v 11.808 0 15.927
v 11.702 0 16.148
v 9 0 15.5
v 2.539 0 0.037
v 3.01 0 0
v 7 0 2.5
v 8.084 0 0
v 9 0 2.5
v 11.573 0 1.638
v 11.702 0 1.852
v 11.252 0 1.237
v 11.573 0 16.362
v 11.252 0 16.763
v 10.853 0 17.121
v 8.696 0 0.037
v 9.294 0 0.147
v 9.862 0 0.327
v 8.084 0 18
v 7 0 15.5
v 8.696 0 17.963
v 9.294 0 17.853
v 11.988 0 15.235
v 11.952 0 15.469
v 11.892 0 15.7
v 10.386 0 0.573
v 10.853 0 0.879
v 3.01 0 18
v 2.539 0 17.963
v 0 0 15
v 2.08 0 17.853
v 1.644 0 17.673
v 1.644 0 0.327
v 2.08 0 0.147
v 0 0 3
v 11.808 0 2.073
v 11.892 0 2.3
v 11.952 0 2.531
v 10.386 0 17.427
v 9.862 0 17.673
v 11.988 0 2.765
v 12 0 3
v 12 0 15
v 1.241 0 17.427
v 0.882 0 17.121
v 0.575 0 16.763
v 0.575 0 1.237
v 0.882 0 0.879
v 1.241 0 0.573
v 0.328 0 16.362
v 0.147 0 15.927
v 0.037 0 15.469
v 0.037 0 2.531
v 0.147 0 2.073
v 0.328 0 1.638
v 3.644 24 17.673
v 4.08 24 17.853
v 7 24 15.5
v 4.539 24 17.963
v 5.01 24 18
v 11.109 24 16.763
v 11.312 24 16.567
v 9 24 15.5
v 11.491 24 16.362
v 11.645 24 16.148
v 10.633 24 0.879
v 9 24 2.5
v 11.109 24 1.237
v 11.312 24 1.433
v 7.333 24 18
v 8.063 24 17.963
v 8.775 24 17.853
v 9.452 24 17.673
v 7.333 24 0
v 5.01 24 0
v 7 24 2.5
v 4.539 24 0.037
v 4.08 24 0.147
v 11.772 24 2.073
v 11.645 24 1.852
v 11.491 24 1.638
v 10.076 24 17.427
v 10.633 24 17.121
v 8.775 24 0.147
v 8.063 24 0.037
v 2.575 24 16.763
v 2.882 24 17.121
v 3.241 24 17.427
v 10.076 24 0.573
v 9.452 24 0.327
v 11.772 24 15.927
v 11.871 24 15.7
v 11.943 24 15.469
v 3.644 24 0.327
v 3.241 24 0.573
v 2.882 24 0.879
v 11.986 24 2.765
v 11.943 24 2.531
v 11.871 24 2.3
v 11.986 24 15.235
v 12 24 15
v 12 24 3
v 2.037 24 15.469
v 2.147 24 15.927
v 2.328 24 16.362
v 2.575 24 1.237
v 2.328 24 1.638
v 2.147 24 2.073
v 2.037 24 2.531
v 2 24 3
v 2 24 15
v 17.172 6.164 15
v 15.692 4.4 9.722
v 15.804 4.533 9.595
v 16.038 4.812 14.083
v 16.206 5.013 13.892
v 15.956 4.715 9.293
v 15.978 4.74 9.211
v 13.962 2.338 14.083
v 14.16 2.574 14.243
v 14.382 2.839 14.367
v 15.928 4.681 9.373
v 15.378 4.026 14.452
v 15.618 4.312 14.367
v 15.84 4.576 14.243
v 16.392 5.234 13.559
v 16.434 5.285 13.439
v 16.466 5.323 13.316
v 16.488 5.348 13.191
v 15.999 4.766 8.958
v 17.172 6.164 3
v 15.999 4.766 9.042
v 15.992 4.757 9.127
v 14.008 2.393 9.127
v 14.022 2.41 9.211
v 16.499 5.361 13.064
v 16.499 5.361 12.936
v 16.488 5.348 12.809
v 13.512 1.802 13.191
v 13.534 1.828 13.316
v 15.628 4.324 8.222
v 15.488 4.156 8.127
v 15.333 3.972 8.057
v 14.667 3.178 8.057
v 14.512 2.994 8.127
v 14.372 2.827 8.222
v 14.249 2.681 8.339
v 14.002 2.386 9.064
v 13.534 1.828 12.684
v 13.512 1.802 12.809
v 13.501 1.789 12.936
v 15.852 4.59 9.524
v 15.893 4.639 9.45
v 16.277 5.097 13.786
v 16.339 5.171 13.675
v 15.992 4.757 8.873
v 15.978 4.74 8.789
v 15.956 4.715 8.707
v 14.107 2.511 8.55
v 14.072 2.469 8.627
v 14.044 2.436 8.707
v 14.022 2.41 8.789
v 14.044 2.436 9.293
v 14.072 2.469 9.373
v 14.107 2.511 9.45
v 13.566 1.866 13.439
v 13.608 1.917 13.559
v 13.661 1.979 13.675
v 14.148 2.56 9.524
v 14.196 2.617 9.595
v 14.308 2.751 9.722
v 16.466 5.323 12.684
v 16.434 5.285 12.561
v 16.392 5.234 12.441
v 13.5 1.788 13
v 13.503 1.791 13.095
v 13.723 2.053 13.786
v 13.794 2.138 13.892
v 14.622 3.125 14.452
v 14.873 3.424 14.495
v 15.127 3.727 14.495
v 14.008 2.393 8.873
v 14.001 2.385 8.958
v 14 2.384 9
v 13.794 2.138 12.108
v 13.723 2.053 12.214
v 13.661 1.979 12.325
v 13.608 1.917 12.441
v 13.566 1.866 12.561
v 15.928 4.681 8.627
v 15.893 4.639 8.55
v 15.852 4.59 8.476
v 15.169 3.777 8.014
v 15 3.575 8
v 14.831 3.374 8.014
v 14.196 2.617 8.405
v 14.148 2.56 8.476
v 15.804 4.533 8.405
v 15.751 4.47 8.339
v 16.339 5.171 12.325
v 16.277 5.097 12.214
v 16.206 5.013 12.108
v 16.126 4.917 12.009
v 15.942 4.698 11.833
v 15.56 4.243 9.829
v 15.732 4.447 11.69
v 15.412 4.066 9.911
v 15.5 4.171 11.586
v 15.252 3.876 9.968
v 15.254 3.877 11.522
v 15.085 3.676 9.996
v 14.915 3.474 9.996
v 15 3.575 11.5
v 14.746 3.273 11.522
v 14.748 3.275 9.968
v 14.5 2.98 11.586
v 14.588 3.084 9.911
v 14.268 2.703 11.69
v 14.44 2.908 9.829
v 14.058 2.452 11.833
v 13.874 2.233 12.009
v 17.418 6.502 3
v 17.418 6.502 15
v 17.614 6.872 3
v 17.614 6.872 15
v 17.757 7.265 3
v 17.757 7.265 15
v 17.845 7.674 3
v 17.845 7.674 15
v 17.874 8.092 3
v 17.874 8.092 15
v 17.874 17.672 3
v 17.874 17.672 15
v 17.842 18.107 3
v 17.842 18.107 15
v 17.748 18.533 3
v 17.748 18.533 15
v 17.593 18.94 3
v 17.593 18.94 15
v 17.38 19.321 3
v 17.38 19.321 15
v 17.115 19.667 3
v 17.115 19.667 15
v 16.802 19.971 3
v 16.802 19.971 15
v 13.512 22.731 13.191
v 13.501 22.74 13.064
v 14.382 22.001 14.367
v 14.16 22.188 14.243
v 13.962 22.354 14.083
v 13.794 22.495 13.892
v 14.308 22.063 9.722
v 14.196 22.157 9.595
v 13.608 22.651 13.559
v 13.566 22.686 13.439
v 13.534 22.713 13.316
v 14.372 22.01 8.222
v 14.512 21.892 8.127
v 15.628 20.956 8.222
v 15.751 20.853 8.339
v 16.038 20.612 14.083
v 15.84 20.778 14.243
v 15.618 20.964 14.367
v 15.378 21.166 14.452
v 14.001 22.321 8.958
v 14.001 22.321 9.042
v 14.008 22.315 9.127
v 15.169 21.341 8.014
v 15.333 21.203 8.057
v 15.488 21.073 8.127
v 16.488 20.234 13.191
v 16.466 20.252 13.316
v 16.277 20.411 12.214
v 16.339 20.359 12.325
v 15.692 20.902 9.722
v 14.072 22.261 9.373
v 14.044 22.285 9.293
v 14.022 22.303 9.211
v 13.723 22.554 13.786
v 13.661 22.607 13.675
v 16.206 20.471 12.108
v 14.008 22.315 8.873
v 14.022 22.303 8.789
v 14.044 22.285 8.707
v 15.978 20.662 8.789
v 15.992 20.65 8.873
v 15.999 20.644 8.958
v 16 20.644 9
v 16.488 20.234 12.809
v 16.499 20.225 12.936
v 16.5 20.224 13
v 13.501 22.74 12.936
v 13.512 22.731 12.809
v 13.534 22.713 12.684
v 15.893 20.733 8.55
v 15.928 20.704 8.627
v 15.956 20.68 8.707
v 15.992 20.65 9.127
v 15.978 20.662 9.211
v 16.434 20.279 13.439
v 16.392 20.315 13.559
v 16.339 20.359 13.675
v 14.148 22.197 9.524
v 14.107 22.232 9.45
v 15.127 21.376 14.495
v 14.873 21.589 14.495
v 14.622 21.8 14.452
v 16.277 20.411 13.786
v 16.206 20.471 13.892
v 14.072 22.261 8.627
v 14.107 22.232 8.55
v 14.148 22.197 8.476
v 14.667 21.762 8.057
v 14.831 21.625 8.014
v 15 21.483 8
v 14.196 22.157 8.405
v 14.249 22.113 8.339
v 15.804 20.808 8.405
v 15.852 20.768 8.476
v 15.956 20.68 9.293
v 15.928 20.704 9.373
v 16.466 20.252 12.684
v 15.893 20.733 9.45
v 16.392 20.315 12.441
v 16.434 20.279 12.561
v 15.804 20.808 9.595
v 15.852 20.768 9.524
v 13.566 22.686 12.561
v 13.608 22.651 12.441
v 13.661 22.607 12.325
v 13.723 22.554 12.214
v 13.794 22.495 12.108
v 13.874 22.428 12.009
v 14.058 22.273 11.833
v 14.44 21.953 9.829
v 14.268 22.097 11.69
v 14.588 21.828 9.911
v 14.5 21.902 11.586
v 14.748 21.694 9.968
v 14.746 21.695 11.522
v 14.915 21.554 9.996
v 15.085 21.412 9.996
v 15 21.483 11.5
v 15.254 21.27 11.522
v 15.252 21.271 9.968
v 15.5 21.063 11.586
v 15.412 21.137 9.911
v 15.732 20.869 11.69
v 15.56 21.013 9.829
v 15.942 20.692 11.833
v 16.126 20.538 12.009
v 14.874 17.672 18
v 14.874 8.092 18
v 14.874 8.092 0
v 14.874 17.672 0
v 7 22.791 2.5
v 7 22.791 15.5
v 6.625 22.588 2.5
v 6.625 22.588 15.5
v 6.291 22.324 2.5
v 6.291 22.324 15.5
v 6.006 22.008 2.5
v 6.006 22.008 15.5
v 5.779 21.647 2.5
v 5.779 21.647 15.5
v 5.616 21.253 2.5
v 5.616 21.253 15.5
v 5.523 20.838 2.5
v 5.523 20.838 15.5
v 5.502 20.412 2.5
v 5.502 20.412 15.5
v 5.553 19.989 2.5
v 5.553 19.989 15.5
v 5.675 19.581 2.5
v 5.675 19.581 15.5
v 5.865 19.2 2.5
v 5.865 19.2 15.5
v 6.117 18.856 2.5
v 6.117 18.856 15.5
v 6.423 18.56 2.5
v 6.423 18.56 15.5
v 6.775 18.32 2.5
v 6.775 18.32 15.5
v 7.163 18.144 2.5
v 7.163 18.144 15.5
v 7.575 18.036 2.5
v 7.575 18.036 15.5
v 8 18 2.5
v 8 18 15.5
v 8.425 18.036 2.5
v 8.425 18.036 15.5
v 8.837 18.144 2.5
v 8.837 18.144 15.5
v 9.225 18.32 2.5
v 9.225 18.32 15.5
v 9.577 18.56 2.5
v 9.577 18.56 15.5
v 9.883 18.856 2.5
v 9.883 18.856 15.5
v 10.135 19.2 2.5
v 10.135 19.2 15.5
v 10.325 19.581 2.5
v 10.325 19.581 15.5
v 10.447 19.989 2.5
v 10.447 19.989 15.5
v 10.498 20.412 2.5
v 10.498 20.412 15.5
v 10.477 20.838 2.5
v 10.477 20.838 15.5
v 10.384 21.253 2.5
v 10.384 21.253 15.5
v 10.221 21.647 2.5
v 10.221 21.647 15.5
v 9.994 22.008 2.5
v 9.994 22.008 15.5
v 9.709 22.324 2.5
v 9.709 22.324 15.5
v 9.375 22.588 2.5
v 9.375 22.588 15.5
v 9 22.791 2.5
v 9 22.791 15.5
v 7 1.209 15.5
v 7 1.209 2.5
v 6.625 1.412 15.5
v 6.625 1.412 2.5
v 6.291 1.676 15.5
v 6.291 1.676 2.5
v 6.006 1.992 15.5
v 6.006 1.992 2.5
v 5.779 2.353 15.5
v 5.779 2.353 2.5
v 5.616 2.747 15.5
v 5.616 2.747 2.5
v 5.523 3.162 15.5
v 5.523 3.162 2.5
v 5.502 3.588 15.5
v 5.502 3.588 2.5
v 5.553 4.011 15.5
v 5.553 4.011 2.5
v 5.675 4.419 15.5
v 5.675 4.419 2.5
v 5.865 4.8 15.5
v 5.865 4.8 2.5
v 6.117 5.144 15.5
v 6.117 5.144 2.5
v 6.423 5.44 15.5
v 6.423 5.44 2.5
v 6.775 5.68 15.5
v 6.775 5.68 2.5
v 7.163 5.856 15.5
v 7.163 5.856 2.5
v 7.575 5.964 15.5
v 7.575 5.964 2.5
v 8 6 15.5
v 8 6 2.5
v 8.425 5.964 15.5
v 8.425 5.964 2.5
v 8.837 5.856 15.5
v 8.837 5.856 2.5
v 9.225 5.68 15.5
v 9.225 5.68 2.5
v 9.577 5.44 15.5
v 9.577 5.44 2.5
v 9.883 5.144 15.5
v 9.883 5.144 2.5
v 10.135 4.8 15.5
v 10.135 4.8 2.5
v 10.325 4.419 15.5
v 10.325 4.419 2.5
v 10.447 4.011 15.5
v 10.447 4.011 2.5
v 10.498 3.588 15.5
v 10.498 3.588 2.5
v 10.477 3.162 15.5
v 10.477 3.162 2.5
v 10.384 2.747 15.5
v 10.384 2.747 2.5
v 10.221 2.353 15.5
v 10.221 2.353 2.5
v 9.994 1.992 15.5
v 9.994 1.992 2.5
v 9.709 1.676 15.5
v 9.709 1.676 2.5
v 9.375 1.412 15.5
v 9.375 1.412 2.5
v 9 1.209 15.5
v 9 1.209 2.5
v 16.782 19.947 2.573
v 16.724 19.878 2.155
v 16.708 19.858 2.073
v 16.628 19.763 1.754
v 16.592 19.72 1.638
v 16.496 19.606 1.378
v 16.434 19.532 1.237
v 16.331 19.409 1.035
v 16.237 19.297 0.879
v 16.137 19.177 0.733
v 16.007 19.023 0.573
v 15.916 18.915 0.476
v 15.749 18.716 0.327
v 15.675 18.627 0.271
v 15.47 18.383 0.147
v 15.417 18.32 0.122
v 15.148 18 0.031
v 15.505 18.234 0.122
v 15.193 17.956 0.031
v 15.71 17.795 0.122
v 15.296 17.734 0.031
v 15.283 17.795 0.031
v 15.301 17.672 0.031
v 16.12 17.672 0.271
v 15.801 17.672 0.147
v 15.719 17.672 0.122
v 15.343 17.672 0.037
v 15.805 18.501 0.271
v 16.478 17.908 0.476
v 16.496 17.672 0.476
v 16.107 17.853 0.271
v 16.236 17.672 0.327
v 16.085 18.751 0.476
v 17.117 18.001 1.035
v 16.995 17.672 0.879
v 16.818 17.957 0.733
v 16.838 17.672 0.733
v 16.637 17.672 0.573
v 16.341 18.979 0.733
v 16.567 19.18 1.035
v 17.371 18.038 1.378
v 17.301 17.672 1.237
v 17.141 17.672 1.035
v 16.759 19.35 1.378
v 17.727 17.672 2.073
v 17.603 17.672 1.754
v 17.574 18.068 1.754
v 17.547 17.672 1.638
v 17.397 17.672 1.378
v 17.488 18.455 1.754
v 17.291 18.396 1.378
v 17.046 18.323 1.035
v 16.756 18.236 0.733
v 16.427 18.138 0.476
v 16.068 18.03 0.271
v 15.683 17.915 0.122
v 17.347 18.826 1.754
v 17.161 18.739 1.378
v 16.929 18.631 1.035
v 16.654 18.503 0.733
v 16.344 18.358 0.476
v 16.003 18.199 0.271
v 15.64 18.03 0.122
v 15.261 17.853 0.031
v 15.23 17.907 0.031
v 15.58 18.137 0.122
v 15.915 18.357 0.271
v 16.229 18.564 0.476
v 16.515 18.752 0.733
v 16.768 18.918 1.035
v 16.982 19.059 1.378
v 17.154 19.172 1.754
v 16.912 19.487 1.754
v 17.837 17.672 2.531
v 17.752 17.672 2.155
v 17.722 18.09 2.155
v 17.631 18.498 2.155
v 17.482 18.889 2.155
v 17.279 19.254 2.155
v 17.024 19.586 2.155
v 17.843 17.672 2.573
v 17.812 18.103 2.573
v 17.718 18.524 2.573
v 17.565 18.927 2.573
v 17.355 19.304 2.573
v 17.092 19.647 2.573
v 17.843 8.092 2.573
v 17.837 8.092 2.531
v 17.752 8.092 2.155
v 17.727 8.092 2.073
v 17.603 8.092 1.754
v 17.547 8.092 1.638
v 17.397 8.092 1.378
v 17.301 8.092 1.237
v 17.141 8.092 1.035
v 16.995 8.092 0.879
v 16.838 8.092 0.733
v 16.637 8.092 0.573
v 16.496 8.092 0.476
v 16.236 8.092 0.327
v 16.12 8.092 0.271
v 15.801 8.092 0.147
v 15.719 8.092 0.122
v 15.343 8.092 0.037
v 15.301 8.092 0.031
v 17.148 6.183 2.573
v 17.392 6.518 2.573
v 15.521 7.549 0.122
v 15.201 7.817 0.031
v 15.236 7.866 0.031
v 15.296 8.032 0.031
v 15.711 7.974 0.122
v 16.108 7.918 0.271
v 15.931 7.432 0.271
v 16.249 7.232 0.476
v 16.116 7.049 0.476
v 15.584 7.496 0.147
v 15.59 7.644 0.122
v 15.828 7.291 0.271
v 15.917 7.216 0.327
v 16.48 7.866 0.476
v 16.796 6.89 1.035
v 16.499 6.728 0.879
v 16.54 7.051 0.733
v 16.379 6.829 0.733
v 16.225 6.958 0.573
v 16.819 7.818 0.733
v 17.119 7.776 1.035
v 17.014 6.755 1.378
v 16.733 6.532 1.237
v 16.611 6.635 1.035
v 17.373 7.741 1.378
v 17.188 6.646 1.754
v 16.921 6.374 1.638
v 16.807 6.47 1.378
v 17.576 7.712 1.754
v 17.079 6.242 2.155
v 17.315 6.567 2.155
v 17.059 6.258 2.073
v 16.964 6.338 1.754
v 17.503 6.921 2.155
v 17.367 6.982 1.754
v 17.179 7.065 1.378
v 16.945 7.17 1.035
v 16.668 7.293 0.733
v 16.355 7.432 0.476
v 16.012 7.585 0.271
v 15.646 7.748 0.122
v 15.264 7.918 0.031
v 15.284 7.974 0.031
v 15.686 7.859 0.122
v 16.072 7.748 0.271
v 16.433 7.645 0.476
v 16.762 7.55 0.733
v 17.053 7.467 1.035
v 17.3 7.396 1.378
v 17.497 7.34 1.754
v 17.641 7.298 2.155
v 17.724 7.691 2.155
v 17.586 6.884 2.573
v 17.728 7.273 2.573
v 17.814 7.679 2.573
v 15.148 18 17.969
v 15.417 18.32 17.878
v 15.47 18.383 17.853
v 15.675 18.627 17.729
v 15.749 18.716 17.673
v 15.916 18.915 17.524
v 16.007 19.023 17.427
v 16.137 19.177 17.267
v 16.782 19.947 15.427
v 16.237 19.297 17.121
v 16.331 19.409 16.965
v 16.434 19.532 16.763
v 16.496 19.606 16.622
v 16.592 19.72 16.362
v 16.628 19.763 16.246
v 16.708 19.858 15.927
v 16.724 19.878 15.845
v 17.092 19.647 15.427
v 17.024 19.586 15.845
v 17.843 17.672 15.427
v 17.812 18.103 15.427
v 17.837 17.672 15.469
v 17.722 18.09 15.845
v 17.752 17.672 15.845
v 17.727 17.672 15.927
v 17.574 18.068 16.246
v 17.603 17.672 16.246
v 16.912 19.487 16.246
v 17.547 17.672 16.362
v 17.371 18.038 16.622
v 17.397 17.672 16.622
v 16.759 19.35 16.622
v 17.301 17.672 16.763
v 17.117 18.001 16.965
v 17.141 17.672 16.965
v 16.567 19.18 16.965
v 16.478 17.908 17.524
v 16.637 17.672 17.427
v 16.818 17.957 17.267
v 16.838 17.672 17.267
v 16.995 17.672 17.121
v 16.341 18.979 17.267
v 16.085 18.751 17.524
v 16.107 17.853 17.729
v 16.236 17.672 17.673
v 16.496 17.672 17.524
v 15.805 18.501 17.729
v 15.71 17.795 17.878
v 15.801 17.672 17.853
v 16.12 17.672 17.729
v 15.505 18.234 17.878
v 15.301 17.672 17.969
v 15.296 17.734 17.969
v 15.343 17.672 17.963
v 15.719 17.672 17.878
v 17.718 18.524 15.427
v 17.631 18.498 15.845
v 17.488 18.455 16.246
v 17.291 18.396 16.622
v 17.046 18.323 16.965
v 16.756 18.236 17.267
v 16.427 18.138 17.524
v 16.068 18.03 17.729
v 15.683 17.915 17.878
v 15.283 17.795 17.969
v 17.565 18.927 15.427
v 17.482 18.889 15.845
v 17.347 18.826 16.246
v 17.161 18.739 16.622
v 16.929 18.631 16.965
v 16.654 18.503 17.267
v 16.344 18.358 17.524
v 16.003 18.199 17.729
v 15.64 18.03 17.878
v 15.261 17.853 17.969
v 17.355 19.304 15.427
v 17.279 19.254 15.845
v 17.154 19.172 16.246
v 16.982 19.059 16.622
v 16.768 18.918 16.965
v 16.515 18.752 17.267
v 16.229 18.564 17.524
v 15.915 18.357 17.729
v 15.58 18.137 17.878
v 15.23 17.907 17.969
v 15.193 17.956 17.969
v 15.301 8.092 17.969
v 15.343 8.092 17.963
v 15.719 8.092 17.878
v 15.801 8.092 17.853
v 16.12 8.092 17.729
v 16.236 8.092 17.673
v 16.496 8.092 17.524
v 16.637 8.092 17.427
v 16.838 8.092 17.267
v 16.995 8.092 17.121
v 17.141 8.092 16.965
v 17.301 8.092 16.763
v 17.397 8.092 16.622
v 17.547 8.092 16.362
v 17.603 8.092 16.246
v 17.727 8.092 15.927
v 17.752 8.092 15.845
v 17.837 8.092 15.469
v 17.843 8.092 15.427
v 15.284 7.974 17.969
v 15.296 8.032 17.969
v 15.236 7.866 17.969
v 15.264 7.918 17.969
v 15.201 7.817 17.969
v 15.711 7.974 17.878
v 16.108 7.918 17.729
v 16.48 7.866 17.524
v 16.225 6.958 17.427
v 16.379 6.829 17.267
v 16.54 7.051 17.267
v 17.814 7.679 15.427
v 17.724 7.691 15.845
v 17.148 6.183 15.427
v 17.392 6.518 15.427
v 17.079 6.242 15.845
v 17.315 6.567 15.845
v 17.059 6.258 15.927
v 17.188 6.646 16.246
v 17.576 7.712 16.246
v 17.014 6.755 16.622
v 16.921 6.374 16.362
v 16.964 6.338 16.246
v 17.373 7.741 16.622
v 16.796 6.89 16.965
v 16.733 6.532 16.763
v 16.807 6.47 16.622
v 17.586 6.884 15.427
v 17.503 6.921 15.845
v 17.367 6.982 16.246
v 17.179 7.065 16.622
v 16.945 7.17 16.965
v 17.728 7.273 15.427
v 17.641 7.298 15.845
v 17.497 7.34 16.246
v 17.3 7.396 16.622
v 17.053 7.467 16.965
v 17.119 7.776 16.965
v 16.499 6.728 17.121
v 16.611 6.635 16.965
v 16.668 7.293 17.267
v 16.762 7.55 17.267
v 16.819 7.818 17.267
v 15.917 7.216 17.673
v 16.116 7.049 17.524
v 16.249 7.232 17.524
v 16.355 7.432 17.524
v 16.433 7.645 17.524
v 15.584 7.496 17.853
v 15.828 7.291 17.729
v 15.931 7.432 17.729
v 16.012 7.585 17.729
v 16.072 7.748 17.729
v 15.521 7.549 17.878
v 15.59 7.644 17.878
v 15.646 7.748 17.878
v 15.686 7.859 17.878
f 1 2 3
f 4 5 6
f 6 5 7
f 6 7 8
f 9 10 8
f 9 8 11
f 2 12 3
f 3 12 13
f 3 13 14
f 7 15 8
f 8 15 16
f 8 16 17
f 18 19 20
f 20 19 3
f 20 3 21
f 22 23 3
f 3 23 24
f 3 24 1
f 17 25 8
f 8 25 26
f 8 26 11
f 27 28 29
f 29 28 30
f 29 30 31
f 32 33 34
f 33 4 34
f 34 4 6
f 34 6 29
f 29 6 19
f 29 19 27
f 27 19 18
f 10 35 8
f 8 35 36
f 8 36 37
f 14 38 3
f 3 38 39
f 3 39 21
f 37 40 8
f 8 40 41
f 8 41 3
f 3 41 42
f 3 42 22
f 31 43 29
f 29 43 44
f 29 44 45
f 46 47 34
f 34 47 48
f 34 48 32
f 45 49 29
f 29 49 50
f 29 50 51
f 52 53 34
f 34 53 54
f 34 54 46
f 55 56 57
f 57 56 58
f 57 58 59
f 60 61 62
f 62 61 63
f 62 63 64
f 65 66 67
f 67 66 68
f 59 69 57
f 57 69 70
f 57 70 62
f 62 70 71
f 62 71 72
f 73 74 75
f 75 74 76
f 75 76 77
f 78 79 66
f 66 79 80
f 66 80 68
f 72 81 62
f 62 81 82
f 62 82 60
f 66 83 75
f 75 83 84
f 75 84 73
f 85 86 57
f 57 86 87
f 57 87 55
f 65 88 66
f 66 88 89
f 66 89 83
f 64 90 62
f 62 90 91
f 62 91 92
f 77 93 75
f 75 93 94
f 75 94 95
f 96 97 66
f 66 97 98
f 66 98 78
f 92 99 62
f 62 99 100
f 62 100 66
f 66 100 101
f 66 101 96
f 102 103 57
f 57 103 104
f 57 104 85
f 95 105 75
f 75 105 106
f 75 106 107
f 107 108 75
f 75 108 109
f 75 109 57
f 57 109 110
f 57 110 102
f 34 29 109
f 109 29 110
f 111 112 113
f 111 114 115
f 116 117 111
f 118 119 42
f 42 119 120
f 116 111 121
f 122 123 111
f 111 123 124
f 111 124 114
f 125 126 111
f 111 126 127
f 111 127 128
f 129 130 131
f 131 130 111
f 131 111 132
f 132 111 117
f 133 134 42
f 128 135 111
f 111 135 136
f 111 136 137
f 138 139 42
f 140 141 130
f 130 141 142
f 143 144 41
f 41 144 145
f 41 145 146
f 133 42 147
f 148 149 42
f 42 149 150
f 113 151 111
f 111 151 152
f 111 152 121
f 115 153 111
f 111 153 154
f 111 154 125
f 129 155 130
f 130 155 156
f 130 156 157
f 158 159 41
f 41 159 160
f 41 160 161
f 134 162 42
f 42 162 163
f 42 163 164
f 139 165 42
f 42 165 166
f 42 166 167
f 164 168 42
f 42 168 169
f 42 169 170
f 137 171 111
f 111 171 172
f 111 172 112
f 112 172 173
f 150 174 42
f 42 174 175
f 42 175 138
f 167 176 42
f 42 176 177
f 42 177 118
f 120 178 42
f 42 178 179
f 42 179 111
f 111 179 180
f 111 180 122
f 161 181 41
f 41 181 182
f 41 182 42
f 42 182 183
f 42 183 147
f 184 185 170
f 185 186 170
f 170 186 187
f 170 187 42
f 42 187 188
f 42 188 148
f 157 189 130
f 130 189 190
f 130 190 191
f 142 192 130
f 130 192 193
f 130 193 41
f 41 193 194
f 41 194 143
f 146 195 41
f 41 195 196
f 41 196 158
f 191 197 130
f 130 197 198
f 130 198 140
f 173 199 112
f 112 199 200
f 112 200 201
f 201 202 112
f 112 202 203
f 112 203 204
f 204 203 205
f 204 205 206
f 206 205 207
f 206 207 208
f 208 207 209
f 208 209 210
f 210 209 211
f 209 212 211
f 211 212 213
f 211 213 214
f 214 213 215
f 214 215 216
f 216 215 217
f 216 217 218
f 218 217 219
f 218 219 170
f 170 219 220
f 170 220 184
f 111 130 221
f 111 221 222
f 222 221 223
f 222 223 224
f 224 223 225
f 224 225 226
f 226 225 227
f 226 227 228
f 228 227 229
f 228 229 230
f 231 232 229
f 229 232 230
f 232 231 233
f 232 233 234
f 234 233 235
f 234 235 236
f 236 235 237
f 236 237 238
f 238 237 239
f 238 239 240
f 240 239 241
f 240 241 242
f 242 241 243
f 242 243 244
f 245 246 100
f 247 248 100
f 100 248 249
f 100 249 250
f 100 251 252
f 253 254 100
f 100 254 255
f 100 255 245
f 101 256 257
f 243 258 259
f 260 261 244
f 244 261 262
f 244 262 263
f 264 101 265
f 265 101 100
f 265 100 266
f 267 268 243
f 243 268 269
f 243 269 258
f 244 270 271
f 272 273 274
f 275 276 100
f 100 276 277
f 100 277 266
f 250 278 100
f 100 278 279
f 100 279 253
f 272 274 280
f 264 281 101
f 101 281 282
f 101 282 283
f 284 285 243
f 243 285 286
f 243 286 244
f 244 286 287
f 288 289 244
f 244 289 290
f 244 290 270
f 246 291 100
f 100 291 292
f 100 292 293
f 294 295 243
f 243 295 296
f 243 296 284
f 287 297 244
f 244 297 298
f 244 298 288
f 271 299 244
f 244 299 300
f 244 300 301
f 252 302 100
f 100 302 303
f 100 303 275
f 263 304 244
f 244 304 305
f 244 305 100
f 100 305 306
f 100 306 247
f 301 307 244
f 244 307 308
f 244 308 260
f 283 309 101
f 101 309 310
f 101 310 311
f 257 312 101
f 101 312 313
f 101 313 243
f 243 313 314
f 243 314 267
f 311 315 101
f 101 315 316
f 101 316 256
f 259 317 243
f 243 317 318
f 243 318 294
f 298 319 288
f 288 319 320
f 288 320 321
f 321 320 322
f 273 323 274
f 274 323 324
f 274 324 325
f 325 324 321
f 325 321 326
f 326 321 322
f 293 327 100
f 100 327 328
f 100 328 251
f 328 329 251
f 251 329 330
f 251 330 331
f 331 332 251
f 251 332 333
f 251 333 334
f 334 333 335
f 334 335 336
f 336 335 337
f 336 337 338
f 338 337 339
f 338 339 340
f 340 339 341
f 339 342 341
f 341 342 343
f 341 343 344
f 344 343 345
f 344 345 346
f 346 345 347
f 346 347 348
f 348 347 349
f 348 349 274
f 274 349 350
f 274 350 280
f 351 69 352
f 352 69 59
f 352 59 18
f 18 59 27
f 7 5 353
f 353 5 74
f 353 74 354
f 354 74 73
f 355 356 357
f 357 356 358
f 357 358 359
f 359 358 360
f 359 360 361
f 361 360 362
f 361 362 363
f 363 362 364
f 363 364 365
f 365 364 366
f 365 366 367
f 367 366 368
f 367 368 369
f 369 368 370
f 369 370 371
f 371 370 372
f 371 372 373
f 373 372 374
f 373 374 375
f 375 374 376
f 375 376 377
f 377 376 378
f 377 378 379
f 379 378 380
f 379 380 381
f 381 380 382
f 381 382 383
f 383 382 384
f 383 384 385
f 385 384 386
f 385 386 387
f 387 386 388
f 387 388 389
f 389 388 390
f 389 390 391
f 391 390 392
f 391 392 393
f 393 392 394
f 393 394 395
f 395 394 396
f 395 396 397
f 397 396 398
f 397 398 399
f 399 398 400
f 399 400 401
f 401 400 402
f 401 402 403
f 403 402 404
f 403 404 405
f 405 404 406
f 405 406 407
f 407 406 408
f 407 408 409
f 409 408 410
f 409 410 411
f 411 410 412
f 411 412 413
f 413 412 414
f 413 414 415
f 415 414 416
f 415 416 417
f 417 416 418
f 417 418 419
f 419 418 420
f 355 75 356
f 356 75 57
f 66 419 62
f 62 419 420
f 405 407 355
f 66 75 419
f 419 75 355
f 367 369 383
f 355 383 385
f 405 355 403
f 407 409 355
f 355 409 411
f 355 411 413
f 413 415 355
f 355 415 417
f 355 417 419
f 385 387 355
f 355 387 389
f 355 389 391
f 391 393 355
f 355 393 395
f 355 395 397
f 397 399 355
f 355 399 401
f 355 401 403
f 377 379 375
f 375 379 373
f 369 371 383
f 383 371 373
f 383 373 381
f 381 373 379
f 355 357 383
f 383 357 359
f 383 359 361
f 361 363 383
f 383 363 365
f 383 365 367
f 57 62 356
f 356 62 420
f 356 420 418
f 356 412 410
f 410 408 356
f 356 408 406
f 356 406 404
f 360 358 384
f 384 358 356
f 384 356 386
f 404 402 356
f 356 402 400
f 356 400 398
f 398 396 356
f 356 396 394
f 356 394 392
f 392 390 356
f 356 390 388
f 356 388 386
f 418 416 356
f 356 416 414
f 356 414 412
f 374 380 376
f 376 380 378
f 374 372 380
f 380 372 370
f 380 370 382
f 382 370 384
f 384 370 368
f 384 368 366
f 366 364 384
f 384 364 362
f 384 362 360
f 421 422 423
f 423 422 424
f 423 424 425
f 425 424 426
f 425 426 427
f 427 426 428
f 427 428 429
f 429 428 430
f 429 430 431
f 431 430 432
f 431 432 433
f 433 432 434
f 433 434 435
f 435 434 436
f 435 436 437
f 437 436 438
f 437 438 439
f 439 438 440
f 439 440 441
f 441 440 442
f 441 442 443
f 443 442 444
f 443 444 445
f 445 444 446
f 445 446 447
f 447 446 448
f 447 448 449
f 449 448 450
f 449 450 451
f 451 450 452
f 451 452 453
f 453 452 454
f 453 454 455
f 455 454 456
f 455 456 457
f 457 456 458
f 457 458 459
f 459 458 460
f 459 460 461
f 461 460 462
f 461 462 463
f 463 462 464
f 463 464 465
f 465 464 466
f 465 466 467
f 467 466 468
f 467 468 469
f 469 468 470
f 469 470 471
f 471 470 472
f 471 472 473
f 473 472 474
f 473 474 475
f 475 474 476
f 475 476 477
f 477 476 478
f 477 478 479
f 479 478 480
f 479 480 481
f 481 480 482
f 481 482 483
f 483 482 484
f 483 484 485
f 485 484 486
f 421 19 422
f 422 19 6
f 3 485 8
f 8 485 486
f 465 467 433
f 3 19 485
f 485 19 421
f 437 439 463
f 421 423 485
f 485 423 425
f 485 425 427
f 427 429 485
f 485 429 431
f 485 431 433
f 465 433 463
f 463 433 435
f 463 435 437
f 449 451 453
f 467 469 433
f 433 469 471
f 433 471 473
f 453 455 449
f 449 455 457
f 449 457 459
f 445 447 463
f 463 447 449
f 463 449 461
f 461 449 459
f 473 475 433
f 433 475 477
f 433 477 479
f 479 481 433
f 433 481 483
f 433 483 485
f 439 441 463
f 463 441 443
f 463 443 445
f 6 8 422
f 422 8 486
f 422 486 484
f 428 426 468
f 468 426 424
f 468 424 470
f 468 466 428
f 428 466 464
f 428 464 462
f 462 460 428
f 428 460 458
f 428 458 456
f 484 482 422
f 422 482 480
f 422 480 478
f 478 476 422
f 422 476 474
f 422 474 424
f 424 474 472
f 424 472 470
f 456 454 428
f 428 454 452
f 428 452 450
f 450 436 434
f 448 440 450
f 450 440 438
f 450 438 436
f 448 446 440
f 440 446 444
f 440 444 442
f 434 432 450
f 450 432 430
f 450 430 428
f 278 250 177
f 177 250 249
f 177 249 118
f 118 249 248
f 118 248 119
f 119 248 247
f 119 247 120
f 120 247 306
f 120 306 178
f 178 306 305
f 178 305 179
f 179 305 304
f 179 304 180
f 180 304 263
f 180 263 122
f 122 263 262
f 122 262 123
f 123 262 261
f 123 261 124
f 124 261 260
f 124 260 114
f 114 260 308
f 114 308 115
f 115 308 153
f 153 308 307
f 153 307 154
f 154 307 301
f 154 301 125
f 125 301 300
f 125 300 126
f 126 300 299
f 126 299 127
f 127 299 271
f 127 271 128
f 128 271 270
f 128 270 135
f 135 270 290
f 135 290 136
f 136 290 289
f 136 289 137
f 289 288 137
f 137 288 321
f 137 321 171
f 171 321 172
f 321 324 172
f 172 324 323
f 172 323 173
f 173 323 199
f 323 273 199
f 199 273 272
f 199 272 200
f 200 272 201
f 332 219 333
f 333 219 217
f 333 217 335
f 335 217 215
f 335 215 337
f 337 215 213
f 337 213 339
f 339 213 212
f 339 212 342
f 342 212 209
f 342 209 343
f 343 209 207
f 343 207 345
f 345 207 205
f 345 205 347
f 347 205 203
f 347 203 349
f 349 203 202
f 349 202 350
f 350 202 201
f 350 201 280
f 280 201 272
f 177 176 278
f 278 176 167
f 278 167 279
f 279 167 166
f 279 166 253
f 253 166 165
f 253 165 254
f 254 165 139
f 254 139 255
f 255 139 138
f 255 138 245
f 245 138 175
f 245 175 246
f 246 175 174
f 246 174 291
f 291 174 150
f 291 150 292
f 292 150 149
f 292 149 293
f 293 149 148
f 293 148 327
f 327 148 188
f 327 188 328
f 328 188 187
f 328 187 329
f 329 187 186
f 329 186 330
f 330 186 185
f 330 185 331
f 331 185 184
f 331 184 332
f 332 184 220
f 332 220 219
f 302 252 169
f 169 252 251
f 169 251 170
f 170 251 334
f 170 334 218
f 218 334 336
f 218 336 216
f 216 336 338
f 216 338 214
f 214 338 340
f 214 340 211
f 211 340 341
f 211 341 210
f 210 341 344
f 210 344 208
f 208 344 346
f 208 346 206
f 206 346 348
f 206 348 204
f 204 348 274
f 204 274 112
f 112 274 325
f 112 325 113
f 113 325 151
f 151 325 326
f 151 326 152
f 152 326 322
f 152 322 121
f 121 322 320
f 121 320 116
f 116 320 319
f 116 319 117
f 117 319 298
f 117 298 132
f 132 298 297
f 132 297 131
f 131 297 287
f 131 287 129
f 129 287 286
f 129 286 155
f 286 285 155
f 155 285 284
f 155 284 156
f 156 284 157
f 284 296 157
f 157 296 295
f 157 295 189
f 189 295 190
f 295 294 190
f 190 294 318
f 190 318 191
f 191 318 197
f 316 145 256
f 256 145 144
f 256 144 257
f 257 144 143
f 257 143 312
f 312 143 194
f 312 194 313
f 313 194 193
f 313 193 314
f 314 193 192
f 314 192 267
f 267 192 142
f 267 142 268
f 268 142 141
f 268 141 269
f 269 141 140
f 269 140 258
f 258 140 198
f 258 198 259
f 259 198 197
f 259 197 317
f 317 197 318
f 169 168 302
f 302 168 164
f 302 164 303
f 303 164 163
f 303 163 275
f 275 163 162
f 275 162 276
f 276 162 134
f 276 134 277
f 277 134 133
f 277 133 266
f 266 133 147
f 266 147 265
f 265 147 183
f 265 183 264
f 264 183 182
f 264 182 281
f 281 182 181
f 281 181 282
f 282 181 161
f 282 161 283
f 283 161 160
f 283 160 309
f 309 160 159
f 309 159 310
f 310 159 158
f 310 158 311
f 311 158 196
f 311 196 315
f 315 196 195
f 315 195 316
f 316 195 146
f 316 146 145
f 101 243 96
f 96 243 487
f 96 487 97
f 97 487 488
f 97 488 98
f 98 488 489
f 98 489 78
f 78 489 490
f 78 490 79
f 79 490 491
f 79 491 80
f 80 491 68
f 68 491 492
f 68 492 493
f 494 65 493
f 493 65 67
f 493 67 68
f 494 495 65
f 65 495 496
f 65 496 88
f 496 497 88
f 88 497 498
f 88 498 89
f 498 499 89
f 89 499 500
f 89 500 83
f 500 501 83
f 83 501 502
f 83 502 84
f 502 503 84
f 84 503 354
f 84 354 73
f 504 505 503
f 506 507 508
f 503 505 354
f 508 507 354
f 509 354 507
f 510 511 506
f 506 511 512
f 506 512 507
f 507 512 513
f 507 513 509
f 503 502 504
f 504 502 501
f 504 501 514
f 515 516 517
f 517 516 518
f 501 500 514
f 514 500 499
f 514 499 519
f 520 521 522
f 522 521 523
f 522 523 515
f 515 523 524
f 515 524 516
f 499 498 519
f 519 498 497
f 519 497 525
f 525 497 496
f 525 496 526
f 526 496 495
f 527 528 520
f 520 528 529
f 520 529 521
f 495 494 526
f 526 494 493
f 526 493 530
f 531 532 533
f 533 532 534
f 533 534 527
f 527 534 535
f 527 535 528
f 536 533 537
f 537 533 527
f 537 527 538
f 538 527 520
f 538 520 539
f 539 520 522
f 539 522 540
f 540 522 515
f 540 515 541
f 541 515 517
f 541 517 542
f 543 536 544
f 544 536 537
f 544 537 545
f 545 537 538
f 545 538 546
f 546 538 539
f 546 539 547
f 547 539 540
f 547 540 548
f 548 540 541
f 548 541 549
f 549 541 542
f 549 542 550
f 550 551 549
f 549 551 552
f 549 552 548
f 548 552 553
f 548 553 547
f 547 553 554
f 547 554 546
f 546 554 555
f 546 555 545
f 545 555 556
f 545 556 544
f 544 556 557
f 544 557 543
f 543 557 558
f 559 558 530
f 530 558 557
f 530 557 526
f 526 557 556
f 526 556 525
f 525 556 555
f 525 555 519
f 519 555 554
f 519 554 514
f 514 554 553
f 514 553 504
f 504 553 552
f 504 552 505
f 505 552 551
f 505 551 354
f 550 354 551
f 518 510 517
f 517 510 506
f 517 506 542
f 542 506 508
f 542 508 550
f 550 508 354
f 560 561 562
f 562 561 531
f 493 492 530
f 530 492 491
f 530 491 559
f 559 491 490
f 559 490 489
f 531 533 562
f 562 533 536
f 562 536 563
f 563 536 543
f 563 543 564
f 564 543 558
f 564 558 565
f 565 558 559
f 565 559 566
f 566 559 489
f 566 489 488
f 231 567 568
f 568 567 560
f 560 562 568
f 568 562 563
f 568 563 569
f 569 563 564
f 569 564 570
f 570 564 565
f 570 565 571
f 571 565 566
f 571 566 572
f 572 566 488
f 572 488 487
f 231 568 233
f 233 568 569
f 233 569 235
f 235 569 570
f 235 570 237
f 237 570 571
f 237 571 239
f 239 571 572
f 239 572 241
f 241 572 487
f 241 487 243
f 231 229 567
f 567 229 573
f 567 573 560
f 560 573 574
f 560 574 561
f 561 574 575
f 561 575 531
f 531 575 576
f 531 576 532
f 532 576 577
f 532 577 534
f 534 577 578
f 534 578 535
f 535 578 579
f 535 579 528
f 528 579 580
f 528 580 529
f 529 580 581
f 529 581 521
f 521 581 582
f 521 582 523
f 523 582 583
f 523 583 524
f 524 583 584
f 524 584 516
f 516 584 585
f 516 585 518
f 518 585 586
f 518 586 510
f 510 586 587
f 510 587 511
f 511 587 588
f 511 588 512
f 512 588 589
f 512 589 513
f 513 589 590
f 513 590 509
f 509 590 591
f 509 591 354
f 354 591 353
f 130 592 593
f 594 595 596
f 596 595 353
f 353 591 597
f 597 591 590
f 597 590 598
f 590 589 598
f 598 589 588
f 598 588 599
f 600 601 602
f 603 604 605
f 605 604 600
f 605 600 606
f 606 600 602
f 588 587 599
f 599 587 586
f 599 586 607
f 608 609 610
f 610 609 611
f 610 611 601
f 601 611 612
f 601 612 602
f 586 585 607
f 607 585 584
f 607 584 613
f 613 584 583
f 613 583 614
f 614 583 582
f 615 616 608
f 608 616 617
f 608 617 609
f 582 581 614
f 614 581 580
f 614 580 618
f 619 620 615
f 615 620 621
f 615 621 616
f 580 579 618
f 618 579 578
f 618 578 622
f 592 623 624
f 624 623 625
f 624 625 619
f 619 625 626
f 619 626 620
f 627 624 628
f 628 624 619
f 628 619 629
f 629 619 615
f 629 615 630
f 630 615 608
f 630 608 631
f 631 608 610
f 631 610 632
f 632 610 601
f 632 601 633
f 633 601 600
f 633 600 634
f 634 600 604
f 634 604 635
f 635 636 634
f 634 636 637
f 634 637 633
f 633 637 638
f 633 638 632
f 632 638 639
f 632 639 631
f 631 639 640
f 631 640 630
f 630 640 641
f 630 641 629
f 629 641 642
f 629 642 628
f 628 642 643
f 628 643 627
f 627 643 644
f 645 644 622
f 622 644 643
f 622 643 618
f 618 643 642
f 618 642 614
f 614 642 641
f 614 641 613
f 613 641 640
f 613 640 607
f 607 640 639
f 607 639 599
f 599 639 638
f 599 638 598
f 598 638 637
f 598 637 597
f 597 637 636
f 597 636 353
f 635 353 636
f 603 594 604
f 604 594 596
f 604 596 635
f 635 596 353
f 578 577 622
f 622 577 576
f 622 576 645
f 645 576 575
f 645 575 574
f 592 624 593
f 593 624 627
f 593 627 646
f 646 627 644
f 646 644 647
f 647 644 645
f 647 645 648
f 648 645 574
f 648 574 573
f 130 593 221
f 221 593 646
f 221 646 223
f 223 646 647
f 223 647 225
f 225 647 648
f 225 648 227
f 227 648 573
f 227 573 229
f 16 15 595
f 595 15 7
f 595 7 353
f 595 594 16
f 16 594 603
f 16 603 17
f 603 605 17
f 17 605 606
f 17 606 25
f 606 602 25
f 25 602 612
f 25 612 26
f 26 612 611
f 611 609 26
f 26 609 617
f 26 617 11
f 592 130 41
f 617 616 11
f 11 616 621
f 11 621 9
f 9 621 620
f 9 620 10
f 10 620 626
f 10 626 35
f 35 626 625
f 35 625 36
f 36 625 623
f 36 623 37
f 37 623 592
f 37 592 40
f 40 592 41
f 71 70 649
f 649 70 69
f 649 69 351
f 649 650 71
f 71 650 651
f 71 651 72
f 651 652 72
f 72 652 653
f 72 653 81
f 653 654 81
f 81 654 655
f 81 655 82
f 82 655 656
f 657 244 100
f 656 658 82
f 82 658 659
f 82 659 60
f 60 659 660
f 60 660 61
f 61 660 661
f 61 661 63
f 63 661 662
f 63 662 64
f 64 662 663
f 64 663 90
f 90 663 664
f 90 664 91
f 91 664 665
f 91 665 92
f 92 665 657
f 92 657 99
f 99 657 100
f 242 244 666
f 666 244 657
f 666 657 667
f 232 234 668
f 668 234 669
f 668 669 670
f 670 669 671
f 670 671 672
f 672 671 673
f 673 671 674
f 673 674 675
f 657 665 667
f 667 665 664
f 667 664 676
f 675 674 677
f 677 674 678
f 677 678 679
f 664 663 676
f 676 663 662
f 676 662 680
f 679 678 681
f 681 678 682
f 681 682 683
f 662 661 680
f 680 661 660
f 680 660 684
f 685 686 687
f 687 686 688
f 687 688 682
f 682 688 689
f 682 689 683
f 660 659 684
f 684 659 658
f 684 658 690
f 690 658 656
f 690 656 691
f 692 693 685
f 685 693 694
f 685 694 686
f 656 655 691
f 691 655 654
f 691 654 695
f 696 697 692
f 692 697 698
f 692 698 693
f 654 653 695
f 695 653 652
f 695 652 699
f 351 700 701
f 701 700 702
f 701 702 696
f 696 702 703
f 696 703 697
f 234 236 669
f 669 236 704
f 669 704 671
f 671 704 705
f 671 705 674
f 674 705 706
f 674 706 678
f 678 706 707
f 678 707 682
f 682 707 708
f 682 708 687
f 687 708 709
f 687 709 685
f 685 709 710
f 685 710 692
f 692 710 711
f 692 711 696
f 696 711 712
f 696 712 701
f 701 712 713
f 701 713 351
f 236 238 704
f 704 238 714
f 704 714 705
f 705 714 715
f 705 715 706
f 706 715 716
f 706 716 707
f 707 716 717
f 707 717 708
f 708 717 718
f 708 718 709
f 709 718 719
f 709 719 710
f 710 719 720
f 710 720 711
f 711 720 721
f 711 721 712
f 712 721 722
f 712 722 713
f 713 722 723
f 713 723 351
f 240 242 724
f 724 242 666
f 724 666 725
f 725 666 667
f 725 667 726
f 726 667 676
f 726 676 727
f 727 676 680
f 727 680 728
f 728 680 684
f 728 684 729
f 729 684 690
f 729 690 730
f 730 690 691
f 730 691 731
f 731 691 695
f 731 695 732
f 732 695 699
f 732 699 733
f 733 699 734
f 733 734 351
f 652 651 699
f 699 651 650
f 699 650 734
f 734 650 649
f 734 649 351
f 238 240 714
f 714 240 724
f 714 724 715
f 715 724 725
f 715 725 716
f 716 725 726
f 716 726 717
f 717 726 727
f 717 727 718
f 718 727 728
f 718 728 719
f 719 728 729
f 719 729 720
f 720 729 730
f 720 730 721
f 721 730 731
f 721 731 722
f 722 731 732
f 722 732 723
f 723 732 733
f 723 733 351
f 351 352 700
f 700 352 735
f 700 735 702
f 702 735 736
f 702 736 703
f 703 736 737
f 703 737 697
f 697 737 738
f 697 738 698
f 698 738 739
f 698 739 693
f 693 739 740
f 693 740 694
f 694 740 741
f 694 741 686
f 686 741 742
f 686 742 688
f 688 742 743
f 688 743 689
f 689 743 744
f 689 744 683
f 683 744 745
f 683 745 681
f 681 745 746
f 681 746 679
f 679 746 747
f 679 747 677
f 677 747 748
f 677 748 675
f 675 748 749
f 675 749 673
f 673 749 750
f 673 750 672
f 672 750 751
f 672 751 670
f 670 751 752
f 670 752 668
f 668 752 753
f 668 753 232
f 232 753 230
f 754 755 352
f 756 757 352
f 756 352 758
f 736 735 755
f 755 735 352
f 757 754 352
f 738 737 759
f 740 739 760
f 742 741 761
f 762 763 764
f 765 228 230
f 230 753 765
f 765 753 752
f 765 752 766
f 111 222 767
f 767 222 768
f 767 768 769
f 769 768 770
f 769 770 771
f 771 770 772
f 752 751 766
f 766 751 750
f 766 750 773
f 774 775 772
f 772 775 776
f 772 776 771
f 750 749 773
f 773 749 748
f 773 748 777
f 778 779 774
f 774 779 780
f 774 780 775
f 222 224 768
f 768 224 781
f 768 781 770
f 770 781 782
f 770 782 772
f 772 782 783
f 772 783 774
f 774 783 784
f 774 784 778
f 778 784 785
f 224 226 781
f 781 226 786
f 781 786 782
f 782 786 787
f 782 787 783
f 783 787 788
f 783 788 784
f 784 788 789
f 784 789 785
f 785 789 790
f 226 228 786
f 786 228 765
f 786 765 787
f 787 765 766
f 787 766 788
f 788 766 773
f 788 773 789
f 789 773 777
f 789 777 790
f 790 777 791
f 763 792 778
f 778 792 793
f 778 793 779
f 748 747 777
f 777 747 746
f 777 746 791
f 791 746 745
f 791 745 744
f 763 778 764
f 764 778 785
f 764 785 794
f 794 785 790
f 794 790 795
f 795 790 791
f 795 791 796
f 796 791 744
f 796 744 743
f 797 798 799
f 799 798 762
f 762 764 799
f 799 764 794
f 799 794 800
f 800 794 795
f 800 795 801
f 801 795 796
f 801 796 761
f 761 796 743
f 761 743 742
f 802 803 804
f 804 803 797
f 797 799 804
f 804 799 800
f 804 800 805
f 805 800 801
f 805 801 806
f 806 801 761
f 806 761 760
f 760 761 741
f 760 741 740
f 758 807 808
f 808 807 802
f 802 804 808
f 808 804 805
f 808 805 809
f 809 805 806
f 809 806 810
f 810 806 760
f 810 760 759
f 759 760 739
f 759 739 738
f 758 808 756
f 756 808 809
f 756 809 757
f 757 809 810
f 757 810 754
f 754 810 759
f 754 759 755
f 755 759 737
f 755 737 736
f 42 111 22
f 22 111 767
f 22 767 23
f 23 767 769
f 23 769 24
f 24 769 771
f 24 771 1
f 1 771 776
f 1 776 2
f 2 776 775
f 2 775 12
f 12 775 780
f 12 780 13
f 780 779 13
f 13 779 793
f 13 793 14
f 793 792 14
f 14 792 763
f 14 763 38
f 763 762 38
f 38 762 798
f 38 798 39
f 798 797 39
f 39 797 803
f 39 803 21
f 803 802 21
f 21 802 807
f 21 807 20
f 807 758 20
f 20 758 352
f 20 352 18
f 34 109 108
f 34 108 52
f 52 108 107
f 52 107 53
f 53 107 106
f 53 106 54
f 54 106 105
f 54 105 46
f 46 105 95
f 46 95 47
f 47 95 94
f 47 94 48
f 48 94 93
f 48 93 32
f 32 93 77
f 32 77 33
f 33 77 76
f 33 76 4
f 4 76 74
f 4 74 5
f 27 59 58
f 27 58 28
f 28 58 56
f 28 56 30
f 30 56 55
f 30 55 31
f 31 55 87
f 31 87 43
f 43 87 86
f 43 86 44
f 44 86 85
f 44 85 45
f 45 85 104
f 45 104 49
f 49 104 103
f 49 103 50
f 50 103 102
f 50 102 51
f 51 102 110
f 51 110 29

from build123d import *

# Parameters (mm, degrees)
BOSS_EXTRUDE1_DEPTH = 18
CUT_EXTRUDE1_START  = -2.5
CUT_EXTRUDE1_DEPTH  = 13
CUT_EXTRUDE2_START  = -2.5
CUT_EXTRUDE2_DEPTH  = 13
SKETCH5_R           = 1
SKETCH5_R_2         = 1.5
CUT_EXTRUDE3_DEPTH  = 25
FILLET1_R           = 3


with BuildPart() as part:
    # Sketch2 → Boss-Extrude1 (new body)
    with BuildSketch(Plane.XY):
        with BuildLine():
            Line((0, 0), (12, 0))
            Line((12, 0), (17.171830748, 6.163547874))
            ThreePointArc((17.171830748, 6.163547874), (17.692775281, 7.065850273), (17.873697418, 8.091910703))
            Line((17.873697418, 8.091910703), (17.873697418, 17.672459688))
            ThreePointArc((17.873697418, 17.672459688), (17.592620779, 18.940314473), (16.802060247, 19.970593018))
            Line((16.802060247, 19.970593018), (12, 24))
            Line((12, 24), (2, 24))
            Line((2, 24), (0, 0))
        make_face()
    extrude(amount=BOSS_EXTRUDE1_DEPTH)

    # Sketch3 → Cut-Extrude1 (cut)
    with BuildSketch(Plane.XY.offset(18).offset(CUT_EXTRUDE1_START)):
        with BuildLine():
            Line((7, 24), (9, 24))
            Line((9, 24), (9, 22.791287847))
            ThreePointArc((9, 22.791287847), (8, 18), (7, 22.791287847))
            Line((7, 22.791287847), (7, 24))
        make_face()
    extrude(amount=-CUT_EXTRUDE1_DEPTH, mode=Mode.SUBTRACT)

    # Sketch4 → Cut-Extrude2 (cut)
    with BuildSketch(Plane(origin=(0, 0, 0), x_dir=(-1, 0, 0), z_dir=(0, 0, -1)).offset(CUT_EXTRUDE2_START)):
        with BuildLine():
            Line((-9, 0), (-7, 0))
            Line((-7, 0), (-7, 1.208712153))
            ThreePointArc((-7, 1.208712153), (-8, 6), (-9, 1.208712153))
            Line((-9, 1.208712153), (-9, 0))
        make_face()
    extrude(amount=-CUT_EXTRUDE2_DEPTH, mode=Mode.SUBTRACT)

    # Sketch5 → Cut-Extrude3 (cut)
    with BuildSketch(Plane(origin=(0, 0, 0), x_dir=(1, 0, 0), z_dir=(0, 1, 0))):
        with Locations((15, -9)):
            Circle(SKETCH5_R)
        with Locations((15, -13)):
            Circle(SKETCH5_R_2)
    extrude(amount=CUT_EXTRUDE3_DEPTH, mode=Mode.SUBTRACT)

    # Fillet1
    fillet1_edges = [part.edges().sort_by_distance(p)[0] for p in [
        (17.692775281, 7.065850273, 0),
        (14.585915374, 3.081773937, 0),
        (1, 12, 0),
        (14.585915374, 3.081773937, 18),
        (17.692775281, 7.065850273, 18),
        (17.873697418, 12.882185196, 18),
        (17.592620779, 18.940314473, 18),
        (14.401030124, 21.985296509, 18),
        (1, 12, 18),
        (14.401030124, 21.985296509, 0),
        (17.592620779, 18.940314473, 0),
        (17.873697418, 12.882185196, 0),
    ]]
    fillet(fillet1_edges, radius=FILLET1_R)


solid = part.part
